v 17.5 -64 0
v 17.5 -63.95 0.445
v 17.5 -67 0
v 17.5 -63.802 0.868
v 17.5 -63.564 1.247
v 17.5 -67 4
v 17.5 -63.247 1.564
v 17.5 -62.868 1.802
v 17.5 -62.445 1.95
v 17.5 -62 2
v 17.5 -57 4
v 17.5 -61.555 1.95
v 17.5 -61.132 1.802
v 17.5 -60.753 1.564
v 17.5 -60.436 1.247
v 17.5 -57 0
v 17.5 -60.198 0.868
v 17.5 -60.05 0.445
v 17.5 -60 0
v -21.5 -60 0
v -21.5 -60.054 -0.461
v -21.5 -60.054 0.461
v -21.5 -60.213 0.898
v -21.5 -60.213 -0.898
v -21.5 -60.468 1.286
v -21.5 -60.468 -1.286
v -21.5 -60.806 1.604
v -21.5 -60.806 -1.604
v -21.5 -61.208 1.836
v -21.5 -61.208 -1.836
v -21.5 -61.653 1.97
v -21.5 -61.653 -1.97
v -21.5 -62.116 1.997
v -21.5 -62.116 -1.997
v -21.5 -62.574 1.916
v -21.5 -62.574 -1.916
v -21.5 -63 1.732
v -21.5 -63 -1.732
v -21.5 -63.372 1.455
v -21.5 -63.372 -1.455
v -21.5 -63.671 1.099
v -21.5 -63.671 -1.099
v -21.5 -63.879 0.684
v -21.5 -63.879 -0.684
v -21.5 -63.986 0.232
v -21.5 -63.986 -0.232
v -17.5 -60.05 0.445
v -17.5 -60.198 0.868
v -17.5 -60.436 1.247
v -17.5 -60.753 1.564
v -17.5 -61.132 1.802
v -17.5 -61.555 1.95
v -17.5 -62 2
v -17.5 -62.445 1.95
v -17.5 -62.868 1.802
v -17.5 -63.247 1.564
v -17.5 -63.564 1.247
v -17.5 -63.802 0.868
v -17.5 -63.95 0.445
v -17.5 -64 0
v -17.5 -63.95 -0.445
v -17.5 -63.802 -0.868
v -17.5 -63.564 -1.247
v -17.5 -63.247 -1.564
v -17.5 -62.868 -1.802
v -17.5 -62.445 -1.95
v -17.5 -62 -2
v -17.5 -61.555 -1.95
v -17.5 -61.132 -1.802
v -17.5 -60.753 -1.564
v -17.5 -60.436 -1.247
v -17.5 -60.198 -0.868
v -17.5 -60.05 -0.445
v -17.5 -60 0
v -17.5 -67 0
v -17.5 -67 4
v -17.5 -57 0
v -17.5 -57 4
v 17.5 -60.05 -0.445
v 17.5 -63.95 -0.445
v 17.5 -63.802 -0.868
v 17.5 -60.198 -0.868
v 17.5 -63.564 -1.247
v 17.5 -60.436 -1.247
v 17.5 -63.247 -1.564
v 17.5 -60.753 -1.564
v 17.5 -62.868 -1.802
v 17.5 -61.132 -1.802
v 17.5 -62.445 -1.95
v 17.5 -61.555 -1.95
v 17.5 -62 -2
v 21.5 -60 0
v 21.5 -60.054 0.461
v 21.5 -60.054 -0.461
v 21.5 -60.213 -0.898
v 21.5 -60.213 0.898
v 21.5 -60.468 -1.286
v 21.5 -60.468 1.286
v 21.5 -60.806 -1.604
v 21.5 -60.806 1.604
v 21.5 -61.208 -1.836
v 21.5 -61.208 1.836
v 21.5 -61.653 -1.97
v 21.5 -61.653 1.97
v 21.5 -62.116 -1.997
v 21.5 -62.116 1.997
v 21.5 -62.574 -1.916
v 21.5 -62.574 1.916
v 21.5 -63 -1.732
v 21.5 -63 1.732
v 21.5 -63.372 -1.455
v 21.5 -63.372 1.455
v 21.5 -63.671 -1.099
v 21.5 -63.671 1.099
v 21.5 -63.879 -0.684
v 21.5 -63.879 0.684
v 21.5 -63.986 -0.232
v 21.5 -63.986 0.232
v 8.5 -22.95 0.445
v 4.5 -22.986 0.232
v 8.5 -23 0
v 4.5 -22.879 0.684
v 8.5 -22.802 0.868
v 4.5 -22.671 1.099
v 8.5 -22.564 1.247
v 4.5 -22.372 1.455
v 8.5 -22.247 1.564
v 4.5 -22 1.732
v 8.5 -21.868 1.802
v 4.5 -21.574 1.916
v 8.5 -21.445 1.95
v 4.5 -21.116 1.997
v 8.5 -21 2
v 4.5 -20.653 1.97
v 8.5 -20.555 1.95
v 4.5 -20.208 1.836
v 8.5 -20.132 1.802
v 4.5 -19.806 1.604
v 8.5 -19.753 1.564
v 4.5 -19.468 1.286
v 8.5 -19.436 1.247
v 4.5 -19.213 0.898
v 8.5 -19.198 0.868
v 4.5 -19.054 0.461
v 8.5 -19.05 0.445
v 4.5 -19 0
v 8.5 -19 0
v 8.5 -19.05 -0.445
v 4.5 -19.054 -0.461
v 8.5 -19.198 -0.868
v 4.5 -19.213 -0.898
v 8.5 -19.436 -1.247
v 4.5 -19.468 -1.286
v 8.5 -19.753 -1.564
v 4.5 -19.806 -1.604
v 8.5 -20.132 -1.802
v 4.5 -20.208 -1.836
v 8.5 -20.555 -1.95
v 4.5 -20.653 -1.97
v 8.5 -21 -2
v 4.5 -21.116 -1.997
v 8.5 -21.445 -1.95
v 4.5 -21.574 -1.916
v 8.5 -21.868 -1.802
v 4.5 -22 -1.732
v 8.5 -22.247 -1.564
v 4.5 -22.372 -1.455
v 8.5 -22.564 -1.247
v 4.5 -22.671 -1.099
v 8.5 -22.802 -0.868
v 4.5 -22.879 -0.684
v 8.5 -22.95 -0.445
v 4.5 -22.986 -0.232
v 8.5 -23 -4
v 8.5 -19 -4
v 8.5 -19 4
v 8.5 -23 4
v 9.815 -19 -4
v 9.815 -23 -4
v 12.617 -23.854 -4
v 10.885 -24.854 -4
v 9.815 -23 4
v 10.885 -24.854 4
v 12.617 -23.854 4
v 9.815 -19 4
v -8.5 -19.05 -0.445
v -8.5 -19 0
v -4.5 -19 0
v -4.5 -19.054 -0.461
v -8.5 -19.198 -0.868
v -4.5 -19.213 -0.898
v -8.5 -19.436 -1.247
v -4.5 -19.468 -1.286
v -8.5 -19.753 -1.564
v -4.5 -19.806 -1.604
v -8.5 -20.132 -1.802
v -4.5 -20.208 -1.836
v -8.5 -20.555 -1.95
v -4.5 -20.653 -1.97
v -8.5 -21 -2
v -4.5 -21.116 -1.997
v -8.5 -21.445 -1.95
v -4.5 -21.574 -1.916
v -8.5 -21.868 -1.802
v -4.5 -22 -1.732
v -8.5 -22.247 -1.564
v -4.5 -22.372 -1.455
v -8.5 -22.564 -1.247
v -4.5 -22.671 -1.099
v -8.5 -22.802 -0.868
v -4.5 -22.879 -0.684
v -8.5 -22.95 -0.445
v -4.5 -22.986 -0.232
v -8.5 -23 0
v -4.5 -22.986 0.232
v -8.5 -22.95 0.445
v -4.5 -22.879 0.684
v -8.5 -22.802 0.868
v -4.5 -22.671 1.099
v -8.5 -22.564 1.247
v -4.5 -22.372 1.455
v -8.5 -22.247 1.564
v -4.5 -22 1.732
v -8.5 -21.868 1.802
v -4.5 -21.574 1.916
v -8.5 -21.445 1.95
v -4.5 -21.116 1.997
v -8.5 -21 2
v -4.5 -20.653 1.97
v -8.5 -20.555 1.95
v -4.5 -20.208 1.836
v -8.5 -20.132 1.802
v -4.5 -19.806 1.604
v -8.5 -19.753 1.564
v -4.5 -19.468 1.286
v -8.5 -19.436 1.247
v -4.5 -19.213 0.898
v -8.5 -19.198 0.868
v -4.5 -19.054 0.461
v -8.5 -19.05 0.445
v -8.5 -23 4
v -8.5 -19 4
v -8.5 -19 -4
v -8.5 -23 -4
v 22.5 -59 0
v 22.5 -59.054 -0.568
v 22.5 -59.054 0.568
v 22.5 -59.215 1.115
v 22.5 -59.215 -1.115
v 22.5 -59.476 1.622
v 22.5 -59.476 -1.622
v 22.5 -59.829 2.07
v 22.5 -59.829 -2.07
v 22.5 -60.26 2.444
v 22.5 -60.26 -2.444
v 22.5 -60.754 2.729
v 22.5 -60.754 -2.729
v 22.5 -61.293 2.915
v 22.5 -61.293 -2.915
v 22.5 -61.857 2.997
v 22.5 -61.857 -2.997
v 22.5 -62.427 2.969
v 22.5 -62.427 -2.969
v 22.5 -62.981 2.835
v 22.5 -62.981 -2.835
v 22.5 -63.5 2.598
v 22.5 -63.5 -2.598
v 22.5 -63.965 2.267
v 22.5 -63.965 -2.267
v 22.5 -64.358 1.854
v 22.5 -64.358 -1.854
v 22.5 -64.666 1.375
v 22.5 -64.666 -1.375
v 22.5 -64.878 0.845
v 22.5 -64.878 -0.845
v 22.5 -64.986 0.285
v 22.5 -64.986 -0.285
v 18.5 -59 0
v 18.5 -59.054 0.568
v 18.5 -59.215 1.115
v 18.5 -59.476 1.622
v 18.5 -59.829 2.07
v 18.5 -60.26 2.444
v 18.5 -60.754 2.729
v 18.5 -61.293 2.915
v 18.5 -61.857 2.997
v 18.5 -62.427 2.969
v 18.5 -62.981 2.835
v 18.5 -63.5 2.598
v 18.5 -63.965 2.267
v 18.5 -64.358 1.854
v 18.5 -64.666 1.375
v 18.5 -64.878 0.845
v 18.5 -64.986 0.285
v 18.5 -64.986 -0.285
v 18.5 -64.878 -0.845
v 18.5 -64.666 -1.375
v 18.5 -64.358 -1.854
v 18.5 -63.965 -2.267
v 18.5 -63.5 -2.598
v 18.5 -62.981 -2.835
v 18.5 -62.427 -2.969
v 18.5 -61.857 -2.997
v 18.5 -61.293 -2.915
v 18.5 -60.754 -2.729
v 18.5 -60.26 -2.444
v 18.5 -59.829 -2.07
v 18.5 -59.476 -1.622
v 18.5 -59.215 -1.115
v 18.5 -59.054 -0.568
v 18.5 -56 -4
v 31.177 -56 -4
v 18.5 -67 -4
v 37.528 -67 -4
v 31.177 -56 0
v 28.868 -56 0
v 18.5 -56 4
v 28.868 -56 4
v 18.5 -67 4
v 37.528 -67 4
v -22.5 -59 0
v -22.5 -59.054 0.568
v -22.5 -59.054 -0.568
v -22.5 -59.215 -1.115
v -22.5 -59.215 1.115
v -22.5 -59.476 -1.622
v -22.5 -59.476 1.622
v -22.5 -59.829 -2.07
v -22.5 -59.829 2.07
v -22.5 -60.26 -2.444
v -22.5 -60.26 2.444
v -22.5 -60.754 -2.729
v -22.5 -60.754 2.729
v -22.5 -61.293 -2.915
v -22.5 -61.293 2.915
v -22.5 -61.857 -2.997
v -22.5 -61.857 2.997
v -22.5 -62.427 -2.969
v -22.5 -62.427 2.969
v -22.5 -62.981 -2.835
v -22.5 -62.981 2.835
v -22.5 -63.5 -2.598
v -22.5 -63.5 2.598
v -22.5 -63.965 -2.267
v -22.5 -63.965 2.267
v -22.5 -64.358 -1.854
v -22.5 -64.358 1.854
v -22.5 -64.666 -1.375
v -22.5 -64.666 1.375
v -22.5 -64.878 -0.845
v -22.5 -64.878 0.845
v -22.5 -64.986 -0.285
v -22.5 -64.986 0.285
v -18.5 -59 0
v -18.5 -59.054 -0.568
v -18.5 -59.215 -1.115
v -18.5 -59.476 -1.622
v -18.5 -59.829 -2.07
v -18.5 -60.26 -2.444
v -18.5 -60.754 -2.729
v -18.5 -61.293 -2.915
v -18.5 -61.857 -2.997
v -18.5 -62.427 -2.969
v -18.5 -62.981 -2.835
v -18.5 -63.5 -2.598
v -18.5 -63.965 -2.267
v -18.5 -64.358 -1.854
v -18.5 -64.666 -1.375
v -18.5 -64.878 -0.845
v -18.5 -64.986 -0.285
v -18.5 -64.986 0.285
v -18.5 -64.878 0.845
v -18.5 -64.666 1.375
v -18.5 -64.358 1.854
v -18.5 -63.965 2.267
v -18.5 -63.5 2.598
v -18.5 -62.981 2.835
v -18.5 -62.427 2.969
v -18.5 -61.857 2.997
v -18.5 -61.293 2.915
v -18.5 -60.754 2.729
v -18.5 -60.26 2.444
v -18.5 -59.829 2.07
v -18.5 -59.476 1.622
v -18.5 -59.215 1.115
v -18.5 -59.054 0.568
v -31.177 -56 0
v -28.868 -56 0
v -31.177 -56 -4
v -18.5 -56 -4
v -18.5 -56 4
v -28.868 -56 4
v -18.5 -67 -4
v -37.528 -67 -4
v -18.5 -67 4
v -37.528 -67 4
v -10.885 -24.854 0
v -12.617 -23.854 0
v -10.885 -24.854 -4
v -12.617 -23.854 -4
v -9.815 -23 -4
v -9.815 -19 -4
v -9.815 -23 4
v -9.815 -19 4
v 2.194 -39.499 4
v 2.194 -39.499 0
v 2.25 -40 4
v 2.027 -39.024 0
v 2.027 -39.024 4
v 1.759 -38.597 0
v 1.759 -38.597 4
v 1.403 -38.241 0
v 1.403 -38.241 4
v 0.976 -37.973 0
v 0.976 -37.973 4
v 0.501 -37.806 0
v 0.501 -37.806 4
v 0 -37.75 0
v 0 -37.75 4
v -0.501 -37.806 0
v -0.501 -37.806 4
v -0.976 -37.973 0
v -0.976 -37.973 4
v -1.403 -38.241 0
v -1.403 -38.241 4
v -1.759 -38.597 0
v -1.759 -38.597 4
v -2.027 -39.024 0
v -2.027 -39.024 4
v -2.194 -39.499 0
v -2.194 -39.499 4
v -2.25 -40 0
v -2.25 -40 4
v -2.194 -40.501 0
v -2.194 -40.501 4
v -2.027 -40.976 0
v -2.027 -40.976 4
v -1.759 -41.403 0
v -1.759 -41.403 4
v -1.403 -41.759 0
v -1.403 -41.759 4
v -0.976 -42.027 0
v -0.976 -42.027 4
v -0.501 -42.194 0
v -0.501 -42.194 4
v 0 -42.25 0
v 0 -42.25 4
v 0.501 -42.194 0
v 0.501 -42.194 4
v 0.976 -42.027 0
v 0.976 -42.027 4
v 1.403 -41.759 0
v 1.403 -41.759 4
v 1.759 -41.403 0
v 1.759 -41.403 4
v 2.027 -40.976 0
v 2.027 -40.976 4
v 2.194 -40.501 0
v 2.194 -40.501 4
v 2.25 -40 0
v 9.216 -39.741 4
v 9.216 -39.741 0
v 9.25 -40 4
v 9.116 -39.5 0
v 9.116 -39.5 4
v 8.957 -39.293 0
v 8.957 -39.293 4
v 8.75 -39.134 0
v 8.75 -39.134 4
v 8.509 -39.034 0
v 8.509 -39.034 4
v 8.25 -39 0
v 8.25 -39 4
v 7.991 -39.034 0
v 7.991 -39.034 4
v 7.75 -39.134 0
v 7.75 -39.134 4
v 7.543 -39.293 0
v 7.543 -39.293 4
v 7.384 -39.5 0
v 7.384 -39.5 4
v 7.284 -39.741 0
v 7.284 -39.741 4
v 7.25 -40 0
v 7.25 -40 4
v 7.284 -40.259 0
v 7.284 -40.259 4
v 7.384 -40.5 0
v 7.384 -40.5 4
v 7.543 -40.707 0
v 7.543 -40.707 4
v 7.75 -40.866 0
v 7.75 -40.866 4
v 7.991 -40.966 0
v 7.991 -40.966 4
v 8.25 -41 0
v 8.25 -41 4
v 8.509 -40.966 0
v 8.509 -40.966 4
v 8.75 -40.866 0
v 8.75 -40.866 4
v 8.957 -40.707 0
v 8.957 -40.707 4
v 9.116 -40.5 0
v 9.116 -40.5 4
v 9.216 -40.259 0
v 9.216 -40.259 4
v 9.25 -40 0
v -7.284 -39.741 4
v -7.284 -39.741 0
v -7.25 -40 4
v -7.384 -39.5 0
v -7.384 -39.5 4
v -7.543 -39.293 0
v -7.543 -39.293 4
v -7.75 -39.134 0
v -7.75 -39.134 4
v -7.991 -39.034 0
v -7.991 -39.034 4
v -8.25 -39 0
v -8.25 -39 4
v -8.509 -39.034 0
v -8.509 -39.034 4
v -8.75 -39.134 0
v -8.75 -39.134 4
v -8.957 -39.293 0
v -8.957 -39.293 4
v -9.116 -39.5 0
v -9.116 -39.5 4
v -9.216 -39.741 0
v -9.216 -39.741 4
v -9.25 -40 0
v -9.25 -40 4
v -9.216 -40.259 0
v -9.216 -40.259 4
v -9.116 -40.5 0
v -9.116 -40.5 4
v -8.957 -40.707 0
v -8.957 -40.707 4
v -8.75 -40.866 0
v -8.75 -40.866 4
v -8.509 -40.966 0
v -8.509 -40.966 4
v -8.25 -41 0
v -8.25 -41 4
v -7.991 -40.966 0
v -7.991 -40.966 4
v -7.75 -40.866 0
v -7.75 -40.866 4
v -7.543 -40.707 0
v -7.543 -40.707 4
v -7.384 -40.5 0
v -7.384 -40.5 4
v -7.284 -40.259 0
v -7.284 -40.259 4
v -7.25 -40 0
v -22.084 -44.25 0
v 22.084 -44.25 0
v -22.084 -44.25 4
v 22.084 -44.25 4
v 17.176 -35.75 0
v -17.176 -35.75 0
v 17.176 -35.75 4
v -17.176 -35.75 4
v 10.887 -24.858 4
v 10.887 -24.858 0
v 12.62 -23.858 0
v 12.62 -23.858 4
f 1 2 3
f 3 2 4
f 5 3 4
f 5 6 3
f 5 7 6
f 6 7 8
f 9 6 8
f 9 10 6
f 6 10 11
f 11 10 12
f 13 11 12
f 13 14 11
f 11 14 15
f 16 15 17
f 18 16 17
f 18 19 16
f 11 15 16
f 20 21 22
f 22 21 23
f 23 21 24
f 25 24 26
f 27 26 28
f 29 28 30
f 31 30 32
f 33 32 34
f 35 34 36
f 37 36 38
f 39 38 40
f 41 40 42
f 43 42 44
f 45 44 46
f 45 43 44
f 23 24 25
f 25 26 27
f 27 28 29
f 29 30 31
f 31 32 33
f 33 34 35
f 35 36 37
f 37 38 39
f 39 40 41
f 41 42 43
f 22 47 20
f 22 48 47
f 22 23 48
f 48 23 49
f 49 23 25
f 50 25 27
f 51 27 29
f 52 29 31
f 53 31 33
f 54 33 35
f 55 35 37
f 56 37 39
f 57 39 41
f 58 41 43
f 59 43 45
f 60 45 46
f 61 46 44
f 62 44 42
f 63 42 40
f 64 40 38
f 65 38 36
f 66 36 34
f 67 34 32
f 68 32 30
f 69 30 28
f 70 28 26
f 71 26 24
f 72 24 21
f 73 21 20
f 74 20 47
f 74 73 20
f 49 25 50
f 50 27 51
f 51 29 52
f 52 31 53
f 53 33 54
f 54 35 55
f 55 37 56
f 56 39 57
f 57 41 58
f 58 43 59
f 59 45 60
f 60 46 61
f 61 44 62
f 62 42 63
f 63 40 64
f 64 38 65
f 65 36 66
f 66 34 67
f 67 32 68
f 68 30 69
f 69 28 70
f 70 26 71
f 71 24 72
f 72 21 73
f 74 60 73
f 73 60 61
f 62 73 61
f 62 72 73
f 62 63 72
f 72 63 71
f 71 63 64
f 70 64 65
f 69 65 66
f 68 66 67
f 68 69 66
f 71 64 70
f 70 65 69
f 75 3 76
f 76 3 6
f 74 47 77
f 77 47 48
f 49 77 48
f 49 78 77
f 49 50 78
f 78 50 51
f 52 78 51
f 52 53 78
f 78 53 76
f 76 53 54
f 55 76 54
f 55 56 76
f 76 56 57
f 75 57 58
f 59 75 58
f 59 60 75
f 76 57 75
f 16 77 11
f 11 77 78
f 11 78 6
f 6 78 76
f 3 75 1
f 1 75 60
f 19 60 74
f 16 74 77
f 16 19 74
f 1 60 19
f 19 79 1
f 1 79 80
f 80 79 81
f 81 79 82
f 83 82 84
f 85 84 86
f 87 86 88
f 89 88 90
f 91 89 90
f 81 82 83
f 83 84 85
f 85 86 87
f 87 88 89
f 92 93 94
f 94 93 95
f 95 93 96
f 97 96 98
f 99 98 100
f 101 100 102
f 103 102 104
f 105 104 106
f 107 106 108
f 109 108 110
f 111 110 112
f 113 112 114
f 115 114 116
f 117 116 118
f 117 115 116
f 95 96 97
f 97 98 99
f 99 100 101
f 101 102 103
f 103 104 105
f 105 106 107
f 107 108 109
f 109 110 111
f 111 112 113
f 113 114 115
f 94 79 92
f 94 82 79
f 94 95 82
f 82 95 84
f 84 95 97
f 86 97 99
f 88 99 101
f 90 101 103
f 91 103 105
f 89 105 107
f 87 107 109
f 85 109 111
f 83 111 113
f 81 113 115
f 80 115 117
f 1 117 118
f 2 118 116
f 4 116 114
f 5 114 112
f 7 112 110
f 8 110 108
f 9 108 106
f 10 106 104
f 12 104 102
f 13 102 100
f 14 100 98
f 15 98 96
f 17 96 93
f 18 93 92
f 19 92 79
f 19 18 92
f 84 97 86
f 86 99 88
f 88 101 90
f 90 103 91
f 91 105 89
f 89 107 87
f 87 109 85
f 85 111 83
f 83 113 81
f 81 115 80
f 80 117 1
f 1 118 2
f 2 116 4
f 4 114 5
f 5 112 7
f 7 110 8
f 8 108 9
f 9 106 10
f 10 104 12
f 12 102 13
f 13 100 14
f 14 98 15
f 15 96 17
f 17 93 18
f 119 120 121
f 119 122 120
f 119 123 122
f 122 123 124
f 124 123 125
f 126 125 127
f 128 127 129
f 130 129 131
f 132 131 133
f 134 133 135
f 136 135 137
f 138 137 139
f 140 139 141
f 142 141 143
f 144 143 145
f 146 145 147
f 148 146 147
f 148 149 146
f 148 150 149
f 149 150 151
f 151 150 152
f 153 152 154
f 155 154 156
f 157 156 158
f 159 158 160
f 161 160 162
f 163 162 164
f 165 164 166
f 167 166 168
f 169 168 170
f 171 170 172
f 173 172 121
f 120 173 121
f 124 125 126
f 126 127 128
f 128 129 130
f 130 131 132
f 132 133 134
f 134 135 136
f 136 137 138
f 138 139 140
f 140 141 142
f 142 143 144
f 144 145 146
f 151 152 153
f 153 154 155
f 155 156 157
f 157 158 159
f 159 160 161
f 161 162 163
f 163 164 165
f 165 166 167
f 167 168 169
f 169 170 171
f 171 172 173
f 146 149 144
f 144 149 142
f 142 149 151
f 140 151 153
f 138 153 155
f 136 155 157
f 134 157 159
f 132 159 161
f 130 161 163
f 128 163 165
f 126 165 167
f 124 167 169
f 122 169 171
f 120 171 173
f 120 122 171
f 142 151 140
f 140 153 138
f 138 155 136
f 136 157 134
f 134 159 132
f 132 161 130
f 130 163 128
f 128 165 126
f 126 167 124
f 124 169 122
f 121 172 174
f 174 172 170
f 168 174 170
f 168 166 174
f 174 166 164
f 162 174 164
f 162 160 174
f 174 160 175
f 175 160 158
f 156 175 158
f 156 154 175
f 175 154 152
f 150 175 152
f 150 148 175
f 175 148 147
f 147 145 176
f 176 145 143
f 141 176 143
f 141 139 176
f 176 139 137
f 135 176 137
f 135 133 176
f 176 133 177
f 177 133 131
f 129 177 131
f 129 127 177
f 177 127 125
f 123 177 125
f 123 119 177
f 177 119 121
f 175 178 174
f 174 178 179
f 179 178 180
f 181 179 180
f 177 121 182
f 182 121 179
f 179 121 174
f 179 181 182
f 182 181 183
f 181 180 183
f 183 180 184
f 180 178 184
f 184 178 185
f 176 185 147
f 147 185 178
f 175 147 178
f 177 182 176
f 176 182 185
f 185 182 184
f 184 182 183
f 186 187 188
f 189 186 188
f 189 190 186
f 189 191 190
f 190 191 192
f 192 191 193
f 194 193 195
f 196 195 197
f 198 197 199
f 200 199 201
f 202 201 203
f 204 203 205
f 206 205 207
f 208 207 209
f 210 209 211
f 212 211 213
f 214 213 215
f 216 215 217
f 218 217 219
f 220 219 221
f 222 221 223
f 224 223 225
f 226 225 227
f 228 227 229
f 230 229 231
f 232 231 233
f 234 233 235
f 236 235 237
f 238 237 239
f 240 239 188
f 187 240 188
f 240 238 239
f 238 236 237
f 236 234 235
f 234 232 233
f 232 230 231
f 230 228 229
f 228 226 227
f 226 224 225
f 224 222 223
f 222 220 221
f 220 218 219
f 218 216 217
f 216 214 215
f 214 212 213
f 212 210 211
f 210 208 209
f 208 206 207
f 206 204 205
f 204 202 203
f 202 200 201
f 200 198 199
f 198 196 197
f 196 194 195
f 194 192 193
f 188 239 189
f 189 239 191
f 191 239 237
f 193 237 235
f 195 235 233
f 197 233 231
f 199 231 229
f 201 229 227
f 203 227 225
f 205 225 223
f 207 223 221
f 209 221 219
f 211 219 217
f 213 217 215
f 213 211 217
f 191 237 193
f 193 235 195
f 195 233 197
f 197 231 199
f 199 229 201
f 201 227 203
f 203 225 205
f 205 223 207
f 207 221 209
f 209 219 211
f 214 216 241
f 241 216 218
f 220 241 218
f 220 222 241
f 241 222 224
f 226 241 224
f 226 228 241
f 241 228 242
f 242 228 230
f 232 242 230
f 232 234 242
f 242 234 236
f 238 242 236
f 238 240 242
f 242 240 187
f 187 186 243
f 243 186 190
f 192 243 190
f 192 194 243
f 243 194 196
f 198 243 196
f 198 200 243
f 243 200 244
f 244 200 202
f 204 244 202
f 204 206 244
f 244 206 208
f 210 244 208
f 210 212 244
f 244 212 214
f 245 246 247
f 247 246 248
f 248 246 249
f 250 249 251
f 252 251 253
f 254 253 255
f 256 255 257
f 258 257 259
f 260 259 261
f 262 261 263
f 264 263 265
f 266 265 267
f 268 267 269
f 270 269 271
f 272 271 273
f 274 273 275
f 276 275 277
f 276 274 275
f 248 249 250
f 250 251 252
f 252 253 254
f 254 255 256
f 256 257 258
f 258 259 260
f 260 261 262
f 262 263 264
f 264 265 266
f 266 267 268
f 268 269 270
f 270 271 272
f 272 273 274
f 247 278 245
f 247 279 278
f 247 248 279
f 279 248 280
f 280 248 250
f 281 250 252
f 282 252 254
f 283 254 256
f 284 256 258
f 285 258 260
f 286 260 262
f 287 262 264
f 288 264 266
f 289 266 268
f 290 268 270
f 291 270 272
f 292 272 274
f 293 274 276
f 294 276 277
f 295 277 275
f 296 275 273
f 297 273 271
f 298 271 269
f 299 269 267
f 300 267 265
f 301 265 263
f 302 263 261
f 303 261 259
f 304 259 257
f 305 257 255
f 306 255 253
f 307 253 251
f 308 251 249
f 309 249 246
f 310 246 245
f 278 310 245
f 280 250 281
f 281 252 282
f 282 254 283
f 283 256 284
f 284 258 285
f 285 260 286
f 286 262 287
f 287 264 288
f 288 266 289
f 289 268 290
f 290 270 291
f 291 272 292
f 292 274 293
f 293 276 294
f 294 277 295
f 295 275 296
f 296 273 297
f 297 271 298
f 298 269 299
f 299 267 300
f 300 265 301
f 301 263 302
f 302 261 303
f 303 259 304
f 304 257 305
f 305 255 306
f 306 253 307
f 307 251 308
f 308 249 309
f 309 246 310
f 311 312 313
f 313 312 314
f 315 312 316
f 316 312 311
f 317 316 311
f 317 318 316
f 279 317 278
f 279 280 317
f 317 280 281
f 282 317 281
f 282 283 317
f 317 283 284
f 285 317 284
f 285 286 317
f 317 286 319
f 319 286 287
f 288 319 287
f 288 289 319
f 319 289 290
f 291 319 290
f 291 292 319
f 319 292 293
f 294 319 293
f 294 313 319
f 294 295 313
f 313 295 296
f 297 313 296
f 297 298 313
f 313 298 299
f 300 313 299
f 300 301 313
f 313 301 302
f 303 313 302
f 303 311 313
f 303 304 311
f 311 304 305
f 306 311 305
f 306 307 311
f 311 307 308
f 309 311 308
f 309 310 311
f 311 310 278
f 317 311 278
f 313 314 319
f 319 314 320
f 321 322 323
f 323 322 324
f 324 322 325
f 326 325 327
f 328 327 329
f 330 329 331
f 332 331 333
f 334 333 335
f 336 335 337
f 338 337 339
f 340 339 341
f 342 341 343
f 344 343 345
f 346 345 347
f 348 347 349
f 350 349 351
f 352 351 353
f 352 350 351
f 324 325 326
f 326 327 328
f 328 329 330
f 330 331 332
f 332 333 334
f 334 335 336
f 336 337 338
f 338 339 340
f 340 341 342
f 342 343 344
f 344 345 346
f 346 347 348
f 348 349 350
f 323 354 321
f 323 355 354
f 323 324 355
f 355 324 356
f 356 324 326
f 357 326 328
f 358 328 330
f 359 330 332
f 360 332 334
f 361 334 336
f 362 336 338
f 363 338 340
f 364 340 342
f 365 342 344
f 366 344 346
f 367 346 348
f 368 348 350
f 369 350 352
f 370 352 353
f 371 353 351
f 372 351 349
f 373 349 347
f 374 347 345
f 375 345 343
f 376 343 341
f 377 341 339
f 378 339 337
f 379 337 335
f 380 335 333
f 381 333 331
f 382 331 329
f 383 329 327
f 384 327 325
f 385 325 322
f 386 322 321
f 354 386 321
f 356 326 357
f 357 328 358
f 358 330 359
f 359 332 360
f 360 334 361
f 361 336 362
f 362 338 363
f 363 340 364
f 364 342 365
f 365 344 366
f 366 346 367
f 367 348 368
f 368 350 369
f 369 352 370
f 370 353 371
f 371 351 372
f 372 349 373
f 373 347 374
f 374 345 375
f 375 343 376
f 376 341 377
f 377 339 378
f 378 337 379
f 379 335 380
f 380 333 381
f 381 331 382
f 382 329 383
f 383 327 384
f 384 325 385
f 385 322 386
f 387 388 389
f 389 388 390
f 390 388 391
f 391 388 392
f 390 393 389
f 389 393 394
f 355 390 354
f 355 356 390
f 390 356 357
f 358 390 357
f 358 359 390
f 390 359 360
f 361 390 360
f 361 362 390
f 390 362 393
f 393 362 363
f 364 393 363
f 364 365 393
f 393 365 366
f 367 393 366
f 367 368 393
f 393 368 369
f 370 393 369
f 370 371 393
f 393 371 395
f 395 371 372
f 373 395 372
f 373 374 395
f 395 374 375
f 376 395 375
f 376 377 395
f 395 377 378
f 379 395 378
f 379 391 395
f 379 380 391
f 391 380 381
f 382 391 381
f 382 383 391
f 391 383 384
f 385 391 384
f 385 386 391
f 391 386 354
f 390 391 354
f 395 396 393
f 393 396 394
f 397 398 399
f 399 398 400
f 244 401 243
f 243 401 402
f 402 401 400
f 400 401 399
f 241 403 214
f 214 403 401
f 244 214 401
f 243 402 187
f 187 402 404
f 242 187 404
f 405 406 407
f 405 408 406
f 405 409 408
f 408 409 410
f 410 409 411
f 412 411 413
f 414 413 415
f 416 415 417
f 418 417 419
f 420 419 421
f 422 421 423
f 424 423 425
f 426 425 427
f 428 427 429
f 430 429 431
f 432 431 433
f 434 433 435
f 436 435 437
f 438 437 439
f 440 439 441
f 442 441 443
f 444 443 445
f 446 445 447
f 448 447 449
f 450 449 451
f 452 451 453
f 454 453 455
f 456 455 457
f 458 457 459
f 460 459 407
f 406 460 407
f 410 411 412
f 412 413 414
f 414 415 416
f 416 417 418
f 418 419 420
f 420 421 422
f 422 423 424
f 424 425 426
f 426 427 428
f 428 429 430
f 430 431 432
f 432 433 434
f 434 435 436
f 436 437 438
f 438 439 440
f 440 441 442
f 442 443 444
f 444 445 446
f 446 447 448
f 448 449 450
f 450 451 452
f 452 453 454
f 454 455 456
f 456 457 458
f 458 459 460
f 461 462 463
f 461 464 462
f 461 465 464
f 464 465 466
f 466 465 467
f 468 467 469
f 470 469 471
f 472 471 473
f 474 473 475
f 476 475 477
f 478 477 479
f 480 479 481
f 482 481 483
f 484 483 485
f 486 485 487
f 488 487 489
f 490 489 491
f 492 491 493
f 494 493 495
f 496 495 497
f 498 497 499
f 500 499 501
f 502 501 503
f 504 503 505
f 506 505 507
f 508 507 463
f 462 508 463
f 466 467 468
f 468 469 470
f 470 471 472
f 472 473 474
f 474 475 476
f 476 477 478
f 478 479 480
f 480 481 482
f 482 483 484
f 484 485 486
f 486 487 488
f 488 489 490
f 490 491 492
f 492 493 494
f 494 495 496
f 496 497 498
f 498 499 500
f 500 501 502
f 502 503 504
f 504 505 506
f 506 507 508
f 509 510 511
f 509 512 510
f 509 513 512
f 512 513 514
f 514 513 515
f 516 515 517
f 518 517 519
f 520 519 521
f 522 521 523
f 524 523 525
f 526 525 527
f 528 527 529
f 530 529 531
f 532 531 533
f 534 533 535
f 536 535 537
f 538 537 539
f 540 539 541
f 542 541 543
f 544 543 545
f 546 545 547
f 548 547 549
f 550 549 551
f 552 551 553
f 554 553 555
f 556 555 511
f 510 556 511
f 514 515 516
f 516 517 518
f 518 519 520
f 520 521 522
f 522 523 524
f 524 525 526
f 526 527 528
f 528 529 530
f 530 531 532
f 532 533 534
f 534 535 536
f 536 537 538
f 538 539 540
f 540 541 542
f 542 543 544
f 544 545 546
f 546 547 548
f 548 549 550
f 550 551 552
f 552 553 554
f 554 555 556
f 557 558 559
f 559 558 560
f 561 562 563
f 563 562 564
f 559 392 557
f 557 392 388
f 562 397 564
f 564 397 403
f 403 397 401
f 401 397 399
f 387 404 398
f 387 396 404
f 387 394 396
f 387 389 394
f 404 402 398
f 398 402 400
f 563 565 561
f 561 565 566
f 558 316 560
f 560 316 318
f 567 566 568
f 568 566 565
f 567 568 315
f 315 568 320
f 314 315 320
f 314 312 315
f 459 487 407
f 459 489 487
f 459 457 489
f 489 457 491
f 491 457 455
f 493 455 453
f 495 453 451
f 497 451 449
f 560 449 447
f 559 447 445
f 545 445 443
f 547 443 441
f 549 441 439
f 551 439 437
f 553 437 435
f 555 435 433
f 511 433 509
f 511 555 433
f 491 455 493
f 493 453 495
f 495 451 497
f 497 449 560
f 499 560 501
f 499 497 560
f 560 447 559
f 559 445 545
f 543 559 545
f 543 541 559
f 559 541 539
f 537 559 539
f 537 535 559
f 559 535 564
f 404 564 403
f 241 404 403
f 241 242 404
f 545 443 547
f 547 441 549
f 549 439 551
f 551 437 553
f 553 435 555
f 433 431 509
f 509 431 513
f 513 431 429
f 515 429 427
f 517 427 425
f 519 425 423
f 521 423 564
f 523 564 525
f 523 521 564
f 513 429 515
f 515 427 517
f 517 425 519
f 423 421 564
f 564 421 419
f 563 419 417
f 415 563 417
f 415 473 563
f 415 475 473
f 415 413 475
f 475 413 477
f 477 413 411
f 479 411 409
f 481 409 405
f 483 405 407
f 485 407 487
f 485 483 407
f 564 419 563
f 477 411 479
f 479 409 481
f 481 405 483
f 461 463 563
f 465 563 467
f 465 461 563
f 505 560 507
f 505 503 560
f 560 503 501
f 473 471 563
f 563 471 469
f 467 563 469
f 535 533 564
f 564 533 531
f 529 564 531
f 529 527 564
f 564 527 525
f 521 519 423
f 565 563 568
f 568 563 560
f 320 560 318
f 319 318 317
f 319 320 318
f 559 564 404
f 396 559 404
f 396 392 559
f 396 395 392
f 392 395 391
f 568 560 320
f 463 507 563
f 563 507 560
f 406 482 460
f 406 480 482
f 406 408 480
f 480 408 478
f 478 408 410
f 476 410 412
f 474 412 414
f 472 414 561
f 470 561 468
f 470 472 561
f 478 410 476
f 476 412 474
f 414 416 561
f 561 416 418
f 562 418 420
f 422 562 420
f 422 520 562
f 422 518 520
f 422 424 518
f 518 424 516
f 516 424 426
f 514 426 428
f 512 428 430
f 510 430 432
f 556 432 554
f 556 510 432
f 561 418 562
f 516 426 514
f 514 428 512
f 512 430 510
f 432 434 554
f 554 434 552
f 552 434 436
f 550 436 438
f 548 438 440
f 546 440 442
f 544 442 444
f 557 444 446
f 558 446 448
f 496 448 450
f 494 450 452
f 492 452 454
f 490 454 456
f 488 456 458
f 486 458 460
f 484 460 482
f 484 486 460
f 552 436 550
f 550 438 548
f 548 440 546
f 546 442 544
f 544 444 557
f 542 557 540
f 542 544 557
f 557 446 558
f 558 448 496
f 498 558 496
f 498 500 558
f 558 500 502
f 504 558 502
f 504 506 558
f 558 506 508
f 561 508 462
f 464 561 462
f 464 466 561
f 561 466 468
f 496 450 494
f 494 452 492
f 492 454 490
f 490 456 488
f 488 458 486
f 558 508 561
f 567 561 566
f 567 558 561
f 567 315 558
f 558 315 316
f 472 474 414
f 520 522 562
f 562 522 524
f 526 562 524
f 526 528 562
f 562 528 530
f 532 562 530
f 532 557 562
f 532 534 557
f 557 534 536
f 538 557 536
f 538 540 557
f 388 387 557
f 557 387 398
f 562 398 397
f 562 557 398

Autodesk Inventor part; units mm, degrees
ref_plane "YZ Plane" through (0, 0, 0) normal (1, 0, 0) x (0, 1, 0)
ref_plane "XZ Plane" through (0, 0, 0) normal (0, 1, 0) x (-1, 0, 0)
ref_plane "XY Plane" through (0, 0, 0) normal (0, 0, 1) x (1, 0, 0)
sketch "Sketch1" plane through (0, 0, 0) normal (0, 0, 1) x (1, 0, 0)
  circle A0 centre (0, 0) radius 7.5
  line L0 (-21.2869, 0) -> (22.3896, 0) construction
  line L1 (0, 21.9302) -> (0, -69.0741) construction
  circle A1 centre (0, 11.75) radius 2.25
  circle A2 centre (-11.75, 0) radius 2.25
  circle A3 centre (0, -11.75) radius 2.25
  circle A4 centre (11.75, 0) radius 2.25
  line L2 (24.9778, -67) -> (-24.9778, -67) construction
  line L3 (-17.5, -57) -> (17.5, -57)
  line L4 (17.5, -57) -> (17.5, -67)
  line L5 (17.5, -67) -> (-17.5, -67)
  line L6 (-17.5, -67) -> (-17.5, -57)
  line L7 (-37.5278, -67) -> (-18.5, -67)
  line L8 (-18.5, -67) -> (-18.5, -56)
  line L9 (-17.5, -62) -> (17.5, -62) construction
  line L10 (-18.5, -59) -> (-22.5, -59)
  line L11 (-22.5, -59) -> (-22.5, -65)
  line L12 (-22.5, -65) -> (-18.5, -65)
  line L13 (-18.5, -65) -> (-18.5, -59)
  line L14 (-17.5, -60) -> (-21.5, -60)
  line L15 (-21.5, -60) -> (-21.5, -64)
  line L16 (-21.5, -64) -> (-17.5, -64)
  line L17 (-17.5, -64) -> (-17.5, -60)
  line L18 (-18.5, -56) -> (-28.8675, -56)
  line L19 (17.5, -60) -> (21.5, -60)
  line L20 (21.5, -60) -> (21.5, -64)
  line L21 (21.5, -64) -> (17.5, -64)
  line L22 (17.5, -64) -> (17.5, -60)
  line L23 (18.5, -67) -> (18.5, -56)
  line L24 (18.5, -67) -> (37.5278, -67)
  line L25 (18.5, -65) -> (22.5, -65)
  line L26 (22.5, -65) -> (22.5, -59)
  line L27 (22.5, -59) -> (18.5, -59)
  line L28 (18.5, -59) -> (18.5, -65)
  line L29 (18.5, -56) -> (28.8675, -56)
  line L30 (-23.7704, -40) -> (28.6931, -40) construction
  line L31 (-17.1762, -35.75) -> (17.1762, -35.75)
  line L32 (-22.0836, -44.25) -> (22.0836, -44.25)
  circle A5 centre (0, -40) radius 2.25
  line L33 (-7.5, -16) -> (7.5, -16)
  line L34 (7.5, -16) -> (7.5, -21)
  line L35 (7.5, -26) -> (-7.5, -26)
  line L36 (-7.5, -26) -> (-7.5, -24)
  line L37 (7.5, -21) -> (-7.5, -21) construction
  line L38 (-7.5, -18) -> (-3.5, -18)
  line L39 (-3.5, -18) -> (-3.5, -21)
  line L40 (-3.5, -24) -> (-7.5, -24)
  line L41 (-7.5, -24) -> (-7.5, -23)
  line L42 (-8.5, -19) -> (-4.5, -19)
  line L43 (-4.5, -19) -> (-4.5, -23)
  line L44 (-4.5, -23) -> (-8.5, -23)
  line L45 (-8.5, -23) -> (-8.5, -19)
  line L46 (7.5, -18) -> (3.5, -18)
  line L47 (3.5, -18) -> (3.5, -21)
  line L48 (3.5, -24) -> (7.5, -24)
  line L49 (7.5, -24) -> (7.5, -18)
  line L50 (8.5, -19) -> (4.5, -19)
  line L51 (4.5, -19) -> (4.5, -23)
  line L52 (4.5, -23) -> (8.5, -23)
  line L53 (8.5, -23) -> (8.5, -19)
  line L54 (-9.815, -19) -> (-31.1769, -56)
  line L55 (-7.5056, -19) -> (-28.8675, -56)
  line L56 (7.5056, -19) -> (28.8675, -56)
  line L57 (-4.5, -21) -> (-8.5, -21)
  line L58 (4.5, -21) -> (8.5, -21)
  line L59 (-21.5, -62) -> (-17.5, -62)
  line L60 (17.5, -62) -> (21.5, -62)
  line L61 (-22.5, -62) -> (-18.5, -62)
  line L62 (22.5, -62) -> (18.5, -62)
  line L63 (-7.5, -21) -> (-3.5, -21)
  line L64 (3.5, -21) -> (7.5, -21)
  line L65 (-28.8675, -56) -> (-31.1769, -56)
  line L66 (28.8675, -56) -> (31.1769, -56)
  line L67 (-10.8853, -24.8539) -> (-12.6173, -23.8539)
  line L68 (10.8875, -24.8576) -> (12.6195, -23.8576)
  line L69 (7.5, -23) -> (7.5, -24)
  line L70 (-7.5, -23) -> (-7.5, -21)
  line L71 (-7.5, -24) -> (-7.5, -16)
  line L72 (7.5, -24) -> (7.5, -26)
  line L73 (-7.5, -21) -> (-7.5, -18)
  line L74 (-3.5, -21) -> (-3.5, -24)
  line L75 (3.5, -21) -> (3.5, -24)
  line L76 (7.5, -21) -> (7.5, -23)
  line L77 (-18.4752, 0) -> (-9.2376, 16)
  line L78 (-9.2376, 16) -> (9.2376, 16)
  line L79 (9.2376, 16) -> (18.4752, 0)
  line L80 (18.4752, 0) -> (9.2376, -16)
  line L81 (9.2376, -16) -> (-9.2376, -16)
  line L82 (-9.2376, -16) -> (-18.4752, 0)
  line L83 (-77.3649, 0) -> (-38.6825, 67) construction
  line L84 (-38.6825, 67) -> (38.6825, 67) construction
  line L85 (38.6825, 67) -> (77.3649, 0) construction
  line L86 (77.3649, 0) -> (38.6825, -67) construction
  line L87 (38.6825, -67) -> (-38.6825, -67) construction
  line L88 (-38.6825, -67) -> (-77.3649, 0) construction
  line L89 (-9.2376, -16) -> (-38.6825, -67) construction
  line L90 (9.2376, -16) -> (38.6825, -67) construction
  line L91 (0, -16.7974) -> (0, -26) construction
  line L92 (9.815, -19) -> (31.1769, -56)
  line L93 (-8.5, -19) -> (-9.815, -19)
  line L94 (8.5, -19) -> (9.815, -19)
  line L95 (-8.5, -23) -> (-9.815, -23)
  line L96 (8.5, -23) -> (9.815, -23)
  line L97 (-31.1769, -56) -> (-37.5278, -67)
  line L98 (31.1769, -56) -> (37.5278, -67)
  circle A6 centre (-8.25, -40) radius 1
  circle A7 centre (8.25, -40) radius 1
  point P0 (0, -57)
  point P1 (0, -67)
  point P2 (0, -62)
  point P3 (0, -21)
  dimension "d0" = 15
  dimension "d2" = 4.5
  dimension "d9" = 360
  dimension "d16" = 10
  dimension "d20" = 6
  dimension "d21" = 4
  dimension "d22" = 4
  dimension "d23" = 1
  dimension "d24" = 1
  dimension "d25" = 35
  dimension "d27" = 3
  dimension "d28" = 4
  dimension "d29" = 1
  dimension "d30" = 6
  dimension "d31" = 4
  dimension "d32" = 1
  dimension "d34" = 3
  dimension "d35" = 27
  dimension "d39" = 4.5
  dimension "d41" = 2
  dimension "d42" = 2
  dimension "d43" = 2
  dimension "d44" = 10
  dimension "d45" = 4
  dimension "d46" = 6
  dimension "d48" = 4
  dimension "d49" = 1
  dimension "d50" = 4
  dimension "d52" = 6
  dimension "d53" = 4
  dimension "d54" = 4
  dimension "d55" = 1
  dimension "d56" = 4
  dimension "d57" = 15
  dimension "d60" = 2
  dimension "d81" = 16
  dimension "d82" = 2
  dimension "d83" = 67
  dimension "d84" = 1
  dimension "d86" = 2
  dimension "d87" = 1
  dimension "d88" = 5
  dimension "d89" = 3
  dimension "d90" = 3
  dimension "d112" = 2
  dimension "d113" = 2
  dimension "d115" = 5
  dimension "d116" = 5
extrude "Extrusion6" [suppressed]
extrude "Extrusion7" [suppressed]
extrude "Extrusion1" add sketch "Sketch1" along normal blind 4 separate body contours L65 L54 L67 L55 | L56 L68 L92 L66 | L55 L31 L56 L32
extrude "Extrusion3" add sketch "Sketch1" along normal blind 4 separate body contours L3 L4 L5 L6
extrude "Extrusion2" add sketch "Sketch1" along normal mid plane 8 contours L14 L15 L61 L11 L10 L8 | L8 L59 L15 L14 | L8 L16 L15 L59 | L10 L11 L12 L8 L7 L97 L65 L18 | L8 L12 L11 L61 L15 L16 | L54 L93 L45 L55 L67 | L55 L45 L95 bodies 1
revolve "Revolution1" cut sketch "Sketch1" angle 360 about axis through (-22.5, -62, 0) along (1, 0, 0) bodies 1 contours L14 L15 L61 L11 L10 L8 | L8 L59 L15 L14
revolve "Revolution2" add sketch "Sketch1" angle 360 about axis through (-21.5, -62, 0) along (1, 0, 0) bodies 2 contours L6 L59 L8 L14 | L8 L59 L15 L14
revolve "Revolution3" add sketch "Sketch1" angle 360 about axis through (-4.5, -21, 0) along (-1, 0, 0) separate body contours L42 L55 L45 | L55 L42 L71 L57 L45 | L42 L43 L57 L71
revolve "Revolution4" [suppressed]
mirror "Mirror1" about plane through (0, 0, 0) normal (1, 0, 0) of "Extrusion2", "Revolution1", "Revolution2", "Revolution3" bodies 1
mirror "Mirror3" [suppressed]
mirror "Mirror4" about plane through (0, 0, 0) normal (1, 0, 0) of "Revolution3" bodies 3
combine bodies "Combine1" operation type add bodies to combine 2 3 1
equation "\"d2\" = screw"
equation "\"d20\" = hinge_w"
equation "\"d21\" = hinge_d"
equation "\"d22\" = hinge_w - 2 * hinge_sp"
equation "\"d23\" = hinge_sp"
equation "\"d24\" = sp"
equation "\"d28\" = hinge_w - 2 * hinge_sp"
equation "\"d29\" = sp"
equation "\"d30\" = hinge_w"
equation "\"d31\" = hinge_d"
equation "\"d32\" = hinge_sp"
equation "\"d39\" = screw"
equation "\"d45\" = hinge_d"
equation "\"d46\" = hinge_w"
equation "\"d48\" = hinge_d"
equation "\"d49\" = hinge_sp"
equation "\"d50\" = hinge_w - 2 * hinge_sp"
equation "\"screw\" = 4.5"
equation "\"k\" = 0.4"
equation "\"sp\" = 1"
equation "\"d14\" = sp"
equation "\"d15\" = sp"
equation "\"d19\" = sp"
equation "\"hinge_d\" = 4"
equation "\"hinge_w\" = 6"
equation "\"hinge_sp\" = 1"
properties part number "RobotBase"
